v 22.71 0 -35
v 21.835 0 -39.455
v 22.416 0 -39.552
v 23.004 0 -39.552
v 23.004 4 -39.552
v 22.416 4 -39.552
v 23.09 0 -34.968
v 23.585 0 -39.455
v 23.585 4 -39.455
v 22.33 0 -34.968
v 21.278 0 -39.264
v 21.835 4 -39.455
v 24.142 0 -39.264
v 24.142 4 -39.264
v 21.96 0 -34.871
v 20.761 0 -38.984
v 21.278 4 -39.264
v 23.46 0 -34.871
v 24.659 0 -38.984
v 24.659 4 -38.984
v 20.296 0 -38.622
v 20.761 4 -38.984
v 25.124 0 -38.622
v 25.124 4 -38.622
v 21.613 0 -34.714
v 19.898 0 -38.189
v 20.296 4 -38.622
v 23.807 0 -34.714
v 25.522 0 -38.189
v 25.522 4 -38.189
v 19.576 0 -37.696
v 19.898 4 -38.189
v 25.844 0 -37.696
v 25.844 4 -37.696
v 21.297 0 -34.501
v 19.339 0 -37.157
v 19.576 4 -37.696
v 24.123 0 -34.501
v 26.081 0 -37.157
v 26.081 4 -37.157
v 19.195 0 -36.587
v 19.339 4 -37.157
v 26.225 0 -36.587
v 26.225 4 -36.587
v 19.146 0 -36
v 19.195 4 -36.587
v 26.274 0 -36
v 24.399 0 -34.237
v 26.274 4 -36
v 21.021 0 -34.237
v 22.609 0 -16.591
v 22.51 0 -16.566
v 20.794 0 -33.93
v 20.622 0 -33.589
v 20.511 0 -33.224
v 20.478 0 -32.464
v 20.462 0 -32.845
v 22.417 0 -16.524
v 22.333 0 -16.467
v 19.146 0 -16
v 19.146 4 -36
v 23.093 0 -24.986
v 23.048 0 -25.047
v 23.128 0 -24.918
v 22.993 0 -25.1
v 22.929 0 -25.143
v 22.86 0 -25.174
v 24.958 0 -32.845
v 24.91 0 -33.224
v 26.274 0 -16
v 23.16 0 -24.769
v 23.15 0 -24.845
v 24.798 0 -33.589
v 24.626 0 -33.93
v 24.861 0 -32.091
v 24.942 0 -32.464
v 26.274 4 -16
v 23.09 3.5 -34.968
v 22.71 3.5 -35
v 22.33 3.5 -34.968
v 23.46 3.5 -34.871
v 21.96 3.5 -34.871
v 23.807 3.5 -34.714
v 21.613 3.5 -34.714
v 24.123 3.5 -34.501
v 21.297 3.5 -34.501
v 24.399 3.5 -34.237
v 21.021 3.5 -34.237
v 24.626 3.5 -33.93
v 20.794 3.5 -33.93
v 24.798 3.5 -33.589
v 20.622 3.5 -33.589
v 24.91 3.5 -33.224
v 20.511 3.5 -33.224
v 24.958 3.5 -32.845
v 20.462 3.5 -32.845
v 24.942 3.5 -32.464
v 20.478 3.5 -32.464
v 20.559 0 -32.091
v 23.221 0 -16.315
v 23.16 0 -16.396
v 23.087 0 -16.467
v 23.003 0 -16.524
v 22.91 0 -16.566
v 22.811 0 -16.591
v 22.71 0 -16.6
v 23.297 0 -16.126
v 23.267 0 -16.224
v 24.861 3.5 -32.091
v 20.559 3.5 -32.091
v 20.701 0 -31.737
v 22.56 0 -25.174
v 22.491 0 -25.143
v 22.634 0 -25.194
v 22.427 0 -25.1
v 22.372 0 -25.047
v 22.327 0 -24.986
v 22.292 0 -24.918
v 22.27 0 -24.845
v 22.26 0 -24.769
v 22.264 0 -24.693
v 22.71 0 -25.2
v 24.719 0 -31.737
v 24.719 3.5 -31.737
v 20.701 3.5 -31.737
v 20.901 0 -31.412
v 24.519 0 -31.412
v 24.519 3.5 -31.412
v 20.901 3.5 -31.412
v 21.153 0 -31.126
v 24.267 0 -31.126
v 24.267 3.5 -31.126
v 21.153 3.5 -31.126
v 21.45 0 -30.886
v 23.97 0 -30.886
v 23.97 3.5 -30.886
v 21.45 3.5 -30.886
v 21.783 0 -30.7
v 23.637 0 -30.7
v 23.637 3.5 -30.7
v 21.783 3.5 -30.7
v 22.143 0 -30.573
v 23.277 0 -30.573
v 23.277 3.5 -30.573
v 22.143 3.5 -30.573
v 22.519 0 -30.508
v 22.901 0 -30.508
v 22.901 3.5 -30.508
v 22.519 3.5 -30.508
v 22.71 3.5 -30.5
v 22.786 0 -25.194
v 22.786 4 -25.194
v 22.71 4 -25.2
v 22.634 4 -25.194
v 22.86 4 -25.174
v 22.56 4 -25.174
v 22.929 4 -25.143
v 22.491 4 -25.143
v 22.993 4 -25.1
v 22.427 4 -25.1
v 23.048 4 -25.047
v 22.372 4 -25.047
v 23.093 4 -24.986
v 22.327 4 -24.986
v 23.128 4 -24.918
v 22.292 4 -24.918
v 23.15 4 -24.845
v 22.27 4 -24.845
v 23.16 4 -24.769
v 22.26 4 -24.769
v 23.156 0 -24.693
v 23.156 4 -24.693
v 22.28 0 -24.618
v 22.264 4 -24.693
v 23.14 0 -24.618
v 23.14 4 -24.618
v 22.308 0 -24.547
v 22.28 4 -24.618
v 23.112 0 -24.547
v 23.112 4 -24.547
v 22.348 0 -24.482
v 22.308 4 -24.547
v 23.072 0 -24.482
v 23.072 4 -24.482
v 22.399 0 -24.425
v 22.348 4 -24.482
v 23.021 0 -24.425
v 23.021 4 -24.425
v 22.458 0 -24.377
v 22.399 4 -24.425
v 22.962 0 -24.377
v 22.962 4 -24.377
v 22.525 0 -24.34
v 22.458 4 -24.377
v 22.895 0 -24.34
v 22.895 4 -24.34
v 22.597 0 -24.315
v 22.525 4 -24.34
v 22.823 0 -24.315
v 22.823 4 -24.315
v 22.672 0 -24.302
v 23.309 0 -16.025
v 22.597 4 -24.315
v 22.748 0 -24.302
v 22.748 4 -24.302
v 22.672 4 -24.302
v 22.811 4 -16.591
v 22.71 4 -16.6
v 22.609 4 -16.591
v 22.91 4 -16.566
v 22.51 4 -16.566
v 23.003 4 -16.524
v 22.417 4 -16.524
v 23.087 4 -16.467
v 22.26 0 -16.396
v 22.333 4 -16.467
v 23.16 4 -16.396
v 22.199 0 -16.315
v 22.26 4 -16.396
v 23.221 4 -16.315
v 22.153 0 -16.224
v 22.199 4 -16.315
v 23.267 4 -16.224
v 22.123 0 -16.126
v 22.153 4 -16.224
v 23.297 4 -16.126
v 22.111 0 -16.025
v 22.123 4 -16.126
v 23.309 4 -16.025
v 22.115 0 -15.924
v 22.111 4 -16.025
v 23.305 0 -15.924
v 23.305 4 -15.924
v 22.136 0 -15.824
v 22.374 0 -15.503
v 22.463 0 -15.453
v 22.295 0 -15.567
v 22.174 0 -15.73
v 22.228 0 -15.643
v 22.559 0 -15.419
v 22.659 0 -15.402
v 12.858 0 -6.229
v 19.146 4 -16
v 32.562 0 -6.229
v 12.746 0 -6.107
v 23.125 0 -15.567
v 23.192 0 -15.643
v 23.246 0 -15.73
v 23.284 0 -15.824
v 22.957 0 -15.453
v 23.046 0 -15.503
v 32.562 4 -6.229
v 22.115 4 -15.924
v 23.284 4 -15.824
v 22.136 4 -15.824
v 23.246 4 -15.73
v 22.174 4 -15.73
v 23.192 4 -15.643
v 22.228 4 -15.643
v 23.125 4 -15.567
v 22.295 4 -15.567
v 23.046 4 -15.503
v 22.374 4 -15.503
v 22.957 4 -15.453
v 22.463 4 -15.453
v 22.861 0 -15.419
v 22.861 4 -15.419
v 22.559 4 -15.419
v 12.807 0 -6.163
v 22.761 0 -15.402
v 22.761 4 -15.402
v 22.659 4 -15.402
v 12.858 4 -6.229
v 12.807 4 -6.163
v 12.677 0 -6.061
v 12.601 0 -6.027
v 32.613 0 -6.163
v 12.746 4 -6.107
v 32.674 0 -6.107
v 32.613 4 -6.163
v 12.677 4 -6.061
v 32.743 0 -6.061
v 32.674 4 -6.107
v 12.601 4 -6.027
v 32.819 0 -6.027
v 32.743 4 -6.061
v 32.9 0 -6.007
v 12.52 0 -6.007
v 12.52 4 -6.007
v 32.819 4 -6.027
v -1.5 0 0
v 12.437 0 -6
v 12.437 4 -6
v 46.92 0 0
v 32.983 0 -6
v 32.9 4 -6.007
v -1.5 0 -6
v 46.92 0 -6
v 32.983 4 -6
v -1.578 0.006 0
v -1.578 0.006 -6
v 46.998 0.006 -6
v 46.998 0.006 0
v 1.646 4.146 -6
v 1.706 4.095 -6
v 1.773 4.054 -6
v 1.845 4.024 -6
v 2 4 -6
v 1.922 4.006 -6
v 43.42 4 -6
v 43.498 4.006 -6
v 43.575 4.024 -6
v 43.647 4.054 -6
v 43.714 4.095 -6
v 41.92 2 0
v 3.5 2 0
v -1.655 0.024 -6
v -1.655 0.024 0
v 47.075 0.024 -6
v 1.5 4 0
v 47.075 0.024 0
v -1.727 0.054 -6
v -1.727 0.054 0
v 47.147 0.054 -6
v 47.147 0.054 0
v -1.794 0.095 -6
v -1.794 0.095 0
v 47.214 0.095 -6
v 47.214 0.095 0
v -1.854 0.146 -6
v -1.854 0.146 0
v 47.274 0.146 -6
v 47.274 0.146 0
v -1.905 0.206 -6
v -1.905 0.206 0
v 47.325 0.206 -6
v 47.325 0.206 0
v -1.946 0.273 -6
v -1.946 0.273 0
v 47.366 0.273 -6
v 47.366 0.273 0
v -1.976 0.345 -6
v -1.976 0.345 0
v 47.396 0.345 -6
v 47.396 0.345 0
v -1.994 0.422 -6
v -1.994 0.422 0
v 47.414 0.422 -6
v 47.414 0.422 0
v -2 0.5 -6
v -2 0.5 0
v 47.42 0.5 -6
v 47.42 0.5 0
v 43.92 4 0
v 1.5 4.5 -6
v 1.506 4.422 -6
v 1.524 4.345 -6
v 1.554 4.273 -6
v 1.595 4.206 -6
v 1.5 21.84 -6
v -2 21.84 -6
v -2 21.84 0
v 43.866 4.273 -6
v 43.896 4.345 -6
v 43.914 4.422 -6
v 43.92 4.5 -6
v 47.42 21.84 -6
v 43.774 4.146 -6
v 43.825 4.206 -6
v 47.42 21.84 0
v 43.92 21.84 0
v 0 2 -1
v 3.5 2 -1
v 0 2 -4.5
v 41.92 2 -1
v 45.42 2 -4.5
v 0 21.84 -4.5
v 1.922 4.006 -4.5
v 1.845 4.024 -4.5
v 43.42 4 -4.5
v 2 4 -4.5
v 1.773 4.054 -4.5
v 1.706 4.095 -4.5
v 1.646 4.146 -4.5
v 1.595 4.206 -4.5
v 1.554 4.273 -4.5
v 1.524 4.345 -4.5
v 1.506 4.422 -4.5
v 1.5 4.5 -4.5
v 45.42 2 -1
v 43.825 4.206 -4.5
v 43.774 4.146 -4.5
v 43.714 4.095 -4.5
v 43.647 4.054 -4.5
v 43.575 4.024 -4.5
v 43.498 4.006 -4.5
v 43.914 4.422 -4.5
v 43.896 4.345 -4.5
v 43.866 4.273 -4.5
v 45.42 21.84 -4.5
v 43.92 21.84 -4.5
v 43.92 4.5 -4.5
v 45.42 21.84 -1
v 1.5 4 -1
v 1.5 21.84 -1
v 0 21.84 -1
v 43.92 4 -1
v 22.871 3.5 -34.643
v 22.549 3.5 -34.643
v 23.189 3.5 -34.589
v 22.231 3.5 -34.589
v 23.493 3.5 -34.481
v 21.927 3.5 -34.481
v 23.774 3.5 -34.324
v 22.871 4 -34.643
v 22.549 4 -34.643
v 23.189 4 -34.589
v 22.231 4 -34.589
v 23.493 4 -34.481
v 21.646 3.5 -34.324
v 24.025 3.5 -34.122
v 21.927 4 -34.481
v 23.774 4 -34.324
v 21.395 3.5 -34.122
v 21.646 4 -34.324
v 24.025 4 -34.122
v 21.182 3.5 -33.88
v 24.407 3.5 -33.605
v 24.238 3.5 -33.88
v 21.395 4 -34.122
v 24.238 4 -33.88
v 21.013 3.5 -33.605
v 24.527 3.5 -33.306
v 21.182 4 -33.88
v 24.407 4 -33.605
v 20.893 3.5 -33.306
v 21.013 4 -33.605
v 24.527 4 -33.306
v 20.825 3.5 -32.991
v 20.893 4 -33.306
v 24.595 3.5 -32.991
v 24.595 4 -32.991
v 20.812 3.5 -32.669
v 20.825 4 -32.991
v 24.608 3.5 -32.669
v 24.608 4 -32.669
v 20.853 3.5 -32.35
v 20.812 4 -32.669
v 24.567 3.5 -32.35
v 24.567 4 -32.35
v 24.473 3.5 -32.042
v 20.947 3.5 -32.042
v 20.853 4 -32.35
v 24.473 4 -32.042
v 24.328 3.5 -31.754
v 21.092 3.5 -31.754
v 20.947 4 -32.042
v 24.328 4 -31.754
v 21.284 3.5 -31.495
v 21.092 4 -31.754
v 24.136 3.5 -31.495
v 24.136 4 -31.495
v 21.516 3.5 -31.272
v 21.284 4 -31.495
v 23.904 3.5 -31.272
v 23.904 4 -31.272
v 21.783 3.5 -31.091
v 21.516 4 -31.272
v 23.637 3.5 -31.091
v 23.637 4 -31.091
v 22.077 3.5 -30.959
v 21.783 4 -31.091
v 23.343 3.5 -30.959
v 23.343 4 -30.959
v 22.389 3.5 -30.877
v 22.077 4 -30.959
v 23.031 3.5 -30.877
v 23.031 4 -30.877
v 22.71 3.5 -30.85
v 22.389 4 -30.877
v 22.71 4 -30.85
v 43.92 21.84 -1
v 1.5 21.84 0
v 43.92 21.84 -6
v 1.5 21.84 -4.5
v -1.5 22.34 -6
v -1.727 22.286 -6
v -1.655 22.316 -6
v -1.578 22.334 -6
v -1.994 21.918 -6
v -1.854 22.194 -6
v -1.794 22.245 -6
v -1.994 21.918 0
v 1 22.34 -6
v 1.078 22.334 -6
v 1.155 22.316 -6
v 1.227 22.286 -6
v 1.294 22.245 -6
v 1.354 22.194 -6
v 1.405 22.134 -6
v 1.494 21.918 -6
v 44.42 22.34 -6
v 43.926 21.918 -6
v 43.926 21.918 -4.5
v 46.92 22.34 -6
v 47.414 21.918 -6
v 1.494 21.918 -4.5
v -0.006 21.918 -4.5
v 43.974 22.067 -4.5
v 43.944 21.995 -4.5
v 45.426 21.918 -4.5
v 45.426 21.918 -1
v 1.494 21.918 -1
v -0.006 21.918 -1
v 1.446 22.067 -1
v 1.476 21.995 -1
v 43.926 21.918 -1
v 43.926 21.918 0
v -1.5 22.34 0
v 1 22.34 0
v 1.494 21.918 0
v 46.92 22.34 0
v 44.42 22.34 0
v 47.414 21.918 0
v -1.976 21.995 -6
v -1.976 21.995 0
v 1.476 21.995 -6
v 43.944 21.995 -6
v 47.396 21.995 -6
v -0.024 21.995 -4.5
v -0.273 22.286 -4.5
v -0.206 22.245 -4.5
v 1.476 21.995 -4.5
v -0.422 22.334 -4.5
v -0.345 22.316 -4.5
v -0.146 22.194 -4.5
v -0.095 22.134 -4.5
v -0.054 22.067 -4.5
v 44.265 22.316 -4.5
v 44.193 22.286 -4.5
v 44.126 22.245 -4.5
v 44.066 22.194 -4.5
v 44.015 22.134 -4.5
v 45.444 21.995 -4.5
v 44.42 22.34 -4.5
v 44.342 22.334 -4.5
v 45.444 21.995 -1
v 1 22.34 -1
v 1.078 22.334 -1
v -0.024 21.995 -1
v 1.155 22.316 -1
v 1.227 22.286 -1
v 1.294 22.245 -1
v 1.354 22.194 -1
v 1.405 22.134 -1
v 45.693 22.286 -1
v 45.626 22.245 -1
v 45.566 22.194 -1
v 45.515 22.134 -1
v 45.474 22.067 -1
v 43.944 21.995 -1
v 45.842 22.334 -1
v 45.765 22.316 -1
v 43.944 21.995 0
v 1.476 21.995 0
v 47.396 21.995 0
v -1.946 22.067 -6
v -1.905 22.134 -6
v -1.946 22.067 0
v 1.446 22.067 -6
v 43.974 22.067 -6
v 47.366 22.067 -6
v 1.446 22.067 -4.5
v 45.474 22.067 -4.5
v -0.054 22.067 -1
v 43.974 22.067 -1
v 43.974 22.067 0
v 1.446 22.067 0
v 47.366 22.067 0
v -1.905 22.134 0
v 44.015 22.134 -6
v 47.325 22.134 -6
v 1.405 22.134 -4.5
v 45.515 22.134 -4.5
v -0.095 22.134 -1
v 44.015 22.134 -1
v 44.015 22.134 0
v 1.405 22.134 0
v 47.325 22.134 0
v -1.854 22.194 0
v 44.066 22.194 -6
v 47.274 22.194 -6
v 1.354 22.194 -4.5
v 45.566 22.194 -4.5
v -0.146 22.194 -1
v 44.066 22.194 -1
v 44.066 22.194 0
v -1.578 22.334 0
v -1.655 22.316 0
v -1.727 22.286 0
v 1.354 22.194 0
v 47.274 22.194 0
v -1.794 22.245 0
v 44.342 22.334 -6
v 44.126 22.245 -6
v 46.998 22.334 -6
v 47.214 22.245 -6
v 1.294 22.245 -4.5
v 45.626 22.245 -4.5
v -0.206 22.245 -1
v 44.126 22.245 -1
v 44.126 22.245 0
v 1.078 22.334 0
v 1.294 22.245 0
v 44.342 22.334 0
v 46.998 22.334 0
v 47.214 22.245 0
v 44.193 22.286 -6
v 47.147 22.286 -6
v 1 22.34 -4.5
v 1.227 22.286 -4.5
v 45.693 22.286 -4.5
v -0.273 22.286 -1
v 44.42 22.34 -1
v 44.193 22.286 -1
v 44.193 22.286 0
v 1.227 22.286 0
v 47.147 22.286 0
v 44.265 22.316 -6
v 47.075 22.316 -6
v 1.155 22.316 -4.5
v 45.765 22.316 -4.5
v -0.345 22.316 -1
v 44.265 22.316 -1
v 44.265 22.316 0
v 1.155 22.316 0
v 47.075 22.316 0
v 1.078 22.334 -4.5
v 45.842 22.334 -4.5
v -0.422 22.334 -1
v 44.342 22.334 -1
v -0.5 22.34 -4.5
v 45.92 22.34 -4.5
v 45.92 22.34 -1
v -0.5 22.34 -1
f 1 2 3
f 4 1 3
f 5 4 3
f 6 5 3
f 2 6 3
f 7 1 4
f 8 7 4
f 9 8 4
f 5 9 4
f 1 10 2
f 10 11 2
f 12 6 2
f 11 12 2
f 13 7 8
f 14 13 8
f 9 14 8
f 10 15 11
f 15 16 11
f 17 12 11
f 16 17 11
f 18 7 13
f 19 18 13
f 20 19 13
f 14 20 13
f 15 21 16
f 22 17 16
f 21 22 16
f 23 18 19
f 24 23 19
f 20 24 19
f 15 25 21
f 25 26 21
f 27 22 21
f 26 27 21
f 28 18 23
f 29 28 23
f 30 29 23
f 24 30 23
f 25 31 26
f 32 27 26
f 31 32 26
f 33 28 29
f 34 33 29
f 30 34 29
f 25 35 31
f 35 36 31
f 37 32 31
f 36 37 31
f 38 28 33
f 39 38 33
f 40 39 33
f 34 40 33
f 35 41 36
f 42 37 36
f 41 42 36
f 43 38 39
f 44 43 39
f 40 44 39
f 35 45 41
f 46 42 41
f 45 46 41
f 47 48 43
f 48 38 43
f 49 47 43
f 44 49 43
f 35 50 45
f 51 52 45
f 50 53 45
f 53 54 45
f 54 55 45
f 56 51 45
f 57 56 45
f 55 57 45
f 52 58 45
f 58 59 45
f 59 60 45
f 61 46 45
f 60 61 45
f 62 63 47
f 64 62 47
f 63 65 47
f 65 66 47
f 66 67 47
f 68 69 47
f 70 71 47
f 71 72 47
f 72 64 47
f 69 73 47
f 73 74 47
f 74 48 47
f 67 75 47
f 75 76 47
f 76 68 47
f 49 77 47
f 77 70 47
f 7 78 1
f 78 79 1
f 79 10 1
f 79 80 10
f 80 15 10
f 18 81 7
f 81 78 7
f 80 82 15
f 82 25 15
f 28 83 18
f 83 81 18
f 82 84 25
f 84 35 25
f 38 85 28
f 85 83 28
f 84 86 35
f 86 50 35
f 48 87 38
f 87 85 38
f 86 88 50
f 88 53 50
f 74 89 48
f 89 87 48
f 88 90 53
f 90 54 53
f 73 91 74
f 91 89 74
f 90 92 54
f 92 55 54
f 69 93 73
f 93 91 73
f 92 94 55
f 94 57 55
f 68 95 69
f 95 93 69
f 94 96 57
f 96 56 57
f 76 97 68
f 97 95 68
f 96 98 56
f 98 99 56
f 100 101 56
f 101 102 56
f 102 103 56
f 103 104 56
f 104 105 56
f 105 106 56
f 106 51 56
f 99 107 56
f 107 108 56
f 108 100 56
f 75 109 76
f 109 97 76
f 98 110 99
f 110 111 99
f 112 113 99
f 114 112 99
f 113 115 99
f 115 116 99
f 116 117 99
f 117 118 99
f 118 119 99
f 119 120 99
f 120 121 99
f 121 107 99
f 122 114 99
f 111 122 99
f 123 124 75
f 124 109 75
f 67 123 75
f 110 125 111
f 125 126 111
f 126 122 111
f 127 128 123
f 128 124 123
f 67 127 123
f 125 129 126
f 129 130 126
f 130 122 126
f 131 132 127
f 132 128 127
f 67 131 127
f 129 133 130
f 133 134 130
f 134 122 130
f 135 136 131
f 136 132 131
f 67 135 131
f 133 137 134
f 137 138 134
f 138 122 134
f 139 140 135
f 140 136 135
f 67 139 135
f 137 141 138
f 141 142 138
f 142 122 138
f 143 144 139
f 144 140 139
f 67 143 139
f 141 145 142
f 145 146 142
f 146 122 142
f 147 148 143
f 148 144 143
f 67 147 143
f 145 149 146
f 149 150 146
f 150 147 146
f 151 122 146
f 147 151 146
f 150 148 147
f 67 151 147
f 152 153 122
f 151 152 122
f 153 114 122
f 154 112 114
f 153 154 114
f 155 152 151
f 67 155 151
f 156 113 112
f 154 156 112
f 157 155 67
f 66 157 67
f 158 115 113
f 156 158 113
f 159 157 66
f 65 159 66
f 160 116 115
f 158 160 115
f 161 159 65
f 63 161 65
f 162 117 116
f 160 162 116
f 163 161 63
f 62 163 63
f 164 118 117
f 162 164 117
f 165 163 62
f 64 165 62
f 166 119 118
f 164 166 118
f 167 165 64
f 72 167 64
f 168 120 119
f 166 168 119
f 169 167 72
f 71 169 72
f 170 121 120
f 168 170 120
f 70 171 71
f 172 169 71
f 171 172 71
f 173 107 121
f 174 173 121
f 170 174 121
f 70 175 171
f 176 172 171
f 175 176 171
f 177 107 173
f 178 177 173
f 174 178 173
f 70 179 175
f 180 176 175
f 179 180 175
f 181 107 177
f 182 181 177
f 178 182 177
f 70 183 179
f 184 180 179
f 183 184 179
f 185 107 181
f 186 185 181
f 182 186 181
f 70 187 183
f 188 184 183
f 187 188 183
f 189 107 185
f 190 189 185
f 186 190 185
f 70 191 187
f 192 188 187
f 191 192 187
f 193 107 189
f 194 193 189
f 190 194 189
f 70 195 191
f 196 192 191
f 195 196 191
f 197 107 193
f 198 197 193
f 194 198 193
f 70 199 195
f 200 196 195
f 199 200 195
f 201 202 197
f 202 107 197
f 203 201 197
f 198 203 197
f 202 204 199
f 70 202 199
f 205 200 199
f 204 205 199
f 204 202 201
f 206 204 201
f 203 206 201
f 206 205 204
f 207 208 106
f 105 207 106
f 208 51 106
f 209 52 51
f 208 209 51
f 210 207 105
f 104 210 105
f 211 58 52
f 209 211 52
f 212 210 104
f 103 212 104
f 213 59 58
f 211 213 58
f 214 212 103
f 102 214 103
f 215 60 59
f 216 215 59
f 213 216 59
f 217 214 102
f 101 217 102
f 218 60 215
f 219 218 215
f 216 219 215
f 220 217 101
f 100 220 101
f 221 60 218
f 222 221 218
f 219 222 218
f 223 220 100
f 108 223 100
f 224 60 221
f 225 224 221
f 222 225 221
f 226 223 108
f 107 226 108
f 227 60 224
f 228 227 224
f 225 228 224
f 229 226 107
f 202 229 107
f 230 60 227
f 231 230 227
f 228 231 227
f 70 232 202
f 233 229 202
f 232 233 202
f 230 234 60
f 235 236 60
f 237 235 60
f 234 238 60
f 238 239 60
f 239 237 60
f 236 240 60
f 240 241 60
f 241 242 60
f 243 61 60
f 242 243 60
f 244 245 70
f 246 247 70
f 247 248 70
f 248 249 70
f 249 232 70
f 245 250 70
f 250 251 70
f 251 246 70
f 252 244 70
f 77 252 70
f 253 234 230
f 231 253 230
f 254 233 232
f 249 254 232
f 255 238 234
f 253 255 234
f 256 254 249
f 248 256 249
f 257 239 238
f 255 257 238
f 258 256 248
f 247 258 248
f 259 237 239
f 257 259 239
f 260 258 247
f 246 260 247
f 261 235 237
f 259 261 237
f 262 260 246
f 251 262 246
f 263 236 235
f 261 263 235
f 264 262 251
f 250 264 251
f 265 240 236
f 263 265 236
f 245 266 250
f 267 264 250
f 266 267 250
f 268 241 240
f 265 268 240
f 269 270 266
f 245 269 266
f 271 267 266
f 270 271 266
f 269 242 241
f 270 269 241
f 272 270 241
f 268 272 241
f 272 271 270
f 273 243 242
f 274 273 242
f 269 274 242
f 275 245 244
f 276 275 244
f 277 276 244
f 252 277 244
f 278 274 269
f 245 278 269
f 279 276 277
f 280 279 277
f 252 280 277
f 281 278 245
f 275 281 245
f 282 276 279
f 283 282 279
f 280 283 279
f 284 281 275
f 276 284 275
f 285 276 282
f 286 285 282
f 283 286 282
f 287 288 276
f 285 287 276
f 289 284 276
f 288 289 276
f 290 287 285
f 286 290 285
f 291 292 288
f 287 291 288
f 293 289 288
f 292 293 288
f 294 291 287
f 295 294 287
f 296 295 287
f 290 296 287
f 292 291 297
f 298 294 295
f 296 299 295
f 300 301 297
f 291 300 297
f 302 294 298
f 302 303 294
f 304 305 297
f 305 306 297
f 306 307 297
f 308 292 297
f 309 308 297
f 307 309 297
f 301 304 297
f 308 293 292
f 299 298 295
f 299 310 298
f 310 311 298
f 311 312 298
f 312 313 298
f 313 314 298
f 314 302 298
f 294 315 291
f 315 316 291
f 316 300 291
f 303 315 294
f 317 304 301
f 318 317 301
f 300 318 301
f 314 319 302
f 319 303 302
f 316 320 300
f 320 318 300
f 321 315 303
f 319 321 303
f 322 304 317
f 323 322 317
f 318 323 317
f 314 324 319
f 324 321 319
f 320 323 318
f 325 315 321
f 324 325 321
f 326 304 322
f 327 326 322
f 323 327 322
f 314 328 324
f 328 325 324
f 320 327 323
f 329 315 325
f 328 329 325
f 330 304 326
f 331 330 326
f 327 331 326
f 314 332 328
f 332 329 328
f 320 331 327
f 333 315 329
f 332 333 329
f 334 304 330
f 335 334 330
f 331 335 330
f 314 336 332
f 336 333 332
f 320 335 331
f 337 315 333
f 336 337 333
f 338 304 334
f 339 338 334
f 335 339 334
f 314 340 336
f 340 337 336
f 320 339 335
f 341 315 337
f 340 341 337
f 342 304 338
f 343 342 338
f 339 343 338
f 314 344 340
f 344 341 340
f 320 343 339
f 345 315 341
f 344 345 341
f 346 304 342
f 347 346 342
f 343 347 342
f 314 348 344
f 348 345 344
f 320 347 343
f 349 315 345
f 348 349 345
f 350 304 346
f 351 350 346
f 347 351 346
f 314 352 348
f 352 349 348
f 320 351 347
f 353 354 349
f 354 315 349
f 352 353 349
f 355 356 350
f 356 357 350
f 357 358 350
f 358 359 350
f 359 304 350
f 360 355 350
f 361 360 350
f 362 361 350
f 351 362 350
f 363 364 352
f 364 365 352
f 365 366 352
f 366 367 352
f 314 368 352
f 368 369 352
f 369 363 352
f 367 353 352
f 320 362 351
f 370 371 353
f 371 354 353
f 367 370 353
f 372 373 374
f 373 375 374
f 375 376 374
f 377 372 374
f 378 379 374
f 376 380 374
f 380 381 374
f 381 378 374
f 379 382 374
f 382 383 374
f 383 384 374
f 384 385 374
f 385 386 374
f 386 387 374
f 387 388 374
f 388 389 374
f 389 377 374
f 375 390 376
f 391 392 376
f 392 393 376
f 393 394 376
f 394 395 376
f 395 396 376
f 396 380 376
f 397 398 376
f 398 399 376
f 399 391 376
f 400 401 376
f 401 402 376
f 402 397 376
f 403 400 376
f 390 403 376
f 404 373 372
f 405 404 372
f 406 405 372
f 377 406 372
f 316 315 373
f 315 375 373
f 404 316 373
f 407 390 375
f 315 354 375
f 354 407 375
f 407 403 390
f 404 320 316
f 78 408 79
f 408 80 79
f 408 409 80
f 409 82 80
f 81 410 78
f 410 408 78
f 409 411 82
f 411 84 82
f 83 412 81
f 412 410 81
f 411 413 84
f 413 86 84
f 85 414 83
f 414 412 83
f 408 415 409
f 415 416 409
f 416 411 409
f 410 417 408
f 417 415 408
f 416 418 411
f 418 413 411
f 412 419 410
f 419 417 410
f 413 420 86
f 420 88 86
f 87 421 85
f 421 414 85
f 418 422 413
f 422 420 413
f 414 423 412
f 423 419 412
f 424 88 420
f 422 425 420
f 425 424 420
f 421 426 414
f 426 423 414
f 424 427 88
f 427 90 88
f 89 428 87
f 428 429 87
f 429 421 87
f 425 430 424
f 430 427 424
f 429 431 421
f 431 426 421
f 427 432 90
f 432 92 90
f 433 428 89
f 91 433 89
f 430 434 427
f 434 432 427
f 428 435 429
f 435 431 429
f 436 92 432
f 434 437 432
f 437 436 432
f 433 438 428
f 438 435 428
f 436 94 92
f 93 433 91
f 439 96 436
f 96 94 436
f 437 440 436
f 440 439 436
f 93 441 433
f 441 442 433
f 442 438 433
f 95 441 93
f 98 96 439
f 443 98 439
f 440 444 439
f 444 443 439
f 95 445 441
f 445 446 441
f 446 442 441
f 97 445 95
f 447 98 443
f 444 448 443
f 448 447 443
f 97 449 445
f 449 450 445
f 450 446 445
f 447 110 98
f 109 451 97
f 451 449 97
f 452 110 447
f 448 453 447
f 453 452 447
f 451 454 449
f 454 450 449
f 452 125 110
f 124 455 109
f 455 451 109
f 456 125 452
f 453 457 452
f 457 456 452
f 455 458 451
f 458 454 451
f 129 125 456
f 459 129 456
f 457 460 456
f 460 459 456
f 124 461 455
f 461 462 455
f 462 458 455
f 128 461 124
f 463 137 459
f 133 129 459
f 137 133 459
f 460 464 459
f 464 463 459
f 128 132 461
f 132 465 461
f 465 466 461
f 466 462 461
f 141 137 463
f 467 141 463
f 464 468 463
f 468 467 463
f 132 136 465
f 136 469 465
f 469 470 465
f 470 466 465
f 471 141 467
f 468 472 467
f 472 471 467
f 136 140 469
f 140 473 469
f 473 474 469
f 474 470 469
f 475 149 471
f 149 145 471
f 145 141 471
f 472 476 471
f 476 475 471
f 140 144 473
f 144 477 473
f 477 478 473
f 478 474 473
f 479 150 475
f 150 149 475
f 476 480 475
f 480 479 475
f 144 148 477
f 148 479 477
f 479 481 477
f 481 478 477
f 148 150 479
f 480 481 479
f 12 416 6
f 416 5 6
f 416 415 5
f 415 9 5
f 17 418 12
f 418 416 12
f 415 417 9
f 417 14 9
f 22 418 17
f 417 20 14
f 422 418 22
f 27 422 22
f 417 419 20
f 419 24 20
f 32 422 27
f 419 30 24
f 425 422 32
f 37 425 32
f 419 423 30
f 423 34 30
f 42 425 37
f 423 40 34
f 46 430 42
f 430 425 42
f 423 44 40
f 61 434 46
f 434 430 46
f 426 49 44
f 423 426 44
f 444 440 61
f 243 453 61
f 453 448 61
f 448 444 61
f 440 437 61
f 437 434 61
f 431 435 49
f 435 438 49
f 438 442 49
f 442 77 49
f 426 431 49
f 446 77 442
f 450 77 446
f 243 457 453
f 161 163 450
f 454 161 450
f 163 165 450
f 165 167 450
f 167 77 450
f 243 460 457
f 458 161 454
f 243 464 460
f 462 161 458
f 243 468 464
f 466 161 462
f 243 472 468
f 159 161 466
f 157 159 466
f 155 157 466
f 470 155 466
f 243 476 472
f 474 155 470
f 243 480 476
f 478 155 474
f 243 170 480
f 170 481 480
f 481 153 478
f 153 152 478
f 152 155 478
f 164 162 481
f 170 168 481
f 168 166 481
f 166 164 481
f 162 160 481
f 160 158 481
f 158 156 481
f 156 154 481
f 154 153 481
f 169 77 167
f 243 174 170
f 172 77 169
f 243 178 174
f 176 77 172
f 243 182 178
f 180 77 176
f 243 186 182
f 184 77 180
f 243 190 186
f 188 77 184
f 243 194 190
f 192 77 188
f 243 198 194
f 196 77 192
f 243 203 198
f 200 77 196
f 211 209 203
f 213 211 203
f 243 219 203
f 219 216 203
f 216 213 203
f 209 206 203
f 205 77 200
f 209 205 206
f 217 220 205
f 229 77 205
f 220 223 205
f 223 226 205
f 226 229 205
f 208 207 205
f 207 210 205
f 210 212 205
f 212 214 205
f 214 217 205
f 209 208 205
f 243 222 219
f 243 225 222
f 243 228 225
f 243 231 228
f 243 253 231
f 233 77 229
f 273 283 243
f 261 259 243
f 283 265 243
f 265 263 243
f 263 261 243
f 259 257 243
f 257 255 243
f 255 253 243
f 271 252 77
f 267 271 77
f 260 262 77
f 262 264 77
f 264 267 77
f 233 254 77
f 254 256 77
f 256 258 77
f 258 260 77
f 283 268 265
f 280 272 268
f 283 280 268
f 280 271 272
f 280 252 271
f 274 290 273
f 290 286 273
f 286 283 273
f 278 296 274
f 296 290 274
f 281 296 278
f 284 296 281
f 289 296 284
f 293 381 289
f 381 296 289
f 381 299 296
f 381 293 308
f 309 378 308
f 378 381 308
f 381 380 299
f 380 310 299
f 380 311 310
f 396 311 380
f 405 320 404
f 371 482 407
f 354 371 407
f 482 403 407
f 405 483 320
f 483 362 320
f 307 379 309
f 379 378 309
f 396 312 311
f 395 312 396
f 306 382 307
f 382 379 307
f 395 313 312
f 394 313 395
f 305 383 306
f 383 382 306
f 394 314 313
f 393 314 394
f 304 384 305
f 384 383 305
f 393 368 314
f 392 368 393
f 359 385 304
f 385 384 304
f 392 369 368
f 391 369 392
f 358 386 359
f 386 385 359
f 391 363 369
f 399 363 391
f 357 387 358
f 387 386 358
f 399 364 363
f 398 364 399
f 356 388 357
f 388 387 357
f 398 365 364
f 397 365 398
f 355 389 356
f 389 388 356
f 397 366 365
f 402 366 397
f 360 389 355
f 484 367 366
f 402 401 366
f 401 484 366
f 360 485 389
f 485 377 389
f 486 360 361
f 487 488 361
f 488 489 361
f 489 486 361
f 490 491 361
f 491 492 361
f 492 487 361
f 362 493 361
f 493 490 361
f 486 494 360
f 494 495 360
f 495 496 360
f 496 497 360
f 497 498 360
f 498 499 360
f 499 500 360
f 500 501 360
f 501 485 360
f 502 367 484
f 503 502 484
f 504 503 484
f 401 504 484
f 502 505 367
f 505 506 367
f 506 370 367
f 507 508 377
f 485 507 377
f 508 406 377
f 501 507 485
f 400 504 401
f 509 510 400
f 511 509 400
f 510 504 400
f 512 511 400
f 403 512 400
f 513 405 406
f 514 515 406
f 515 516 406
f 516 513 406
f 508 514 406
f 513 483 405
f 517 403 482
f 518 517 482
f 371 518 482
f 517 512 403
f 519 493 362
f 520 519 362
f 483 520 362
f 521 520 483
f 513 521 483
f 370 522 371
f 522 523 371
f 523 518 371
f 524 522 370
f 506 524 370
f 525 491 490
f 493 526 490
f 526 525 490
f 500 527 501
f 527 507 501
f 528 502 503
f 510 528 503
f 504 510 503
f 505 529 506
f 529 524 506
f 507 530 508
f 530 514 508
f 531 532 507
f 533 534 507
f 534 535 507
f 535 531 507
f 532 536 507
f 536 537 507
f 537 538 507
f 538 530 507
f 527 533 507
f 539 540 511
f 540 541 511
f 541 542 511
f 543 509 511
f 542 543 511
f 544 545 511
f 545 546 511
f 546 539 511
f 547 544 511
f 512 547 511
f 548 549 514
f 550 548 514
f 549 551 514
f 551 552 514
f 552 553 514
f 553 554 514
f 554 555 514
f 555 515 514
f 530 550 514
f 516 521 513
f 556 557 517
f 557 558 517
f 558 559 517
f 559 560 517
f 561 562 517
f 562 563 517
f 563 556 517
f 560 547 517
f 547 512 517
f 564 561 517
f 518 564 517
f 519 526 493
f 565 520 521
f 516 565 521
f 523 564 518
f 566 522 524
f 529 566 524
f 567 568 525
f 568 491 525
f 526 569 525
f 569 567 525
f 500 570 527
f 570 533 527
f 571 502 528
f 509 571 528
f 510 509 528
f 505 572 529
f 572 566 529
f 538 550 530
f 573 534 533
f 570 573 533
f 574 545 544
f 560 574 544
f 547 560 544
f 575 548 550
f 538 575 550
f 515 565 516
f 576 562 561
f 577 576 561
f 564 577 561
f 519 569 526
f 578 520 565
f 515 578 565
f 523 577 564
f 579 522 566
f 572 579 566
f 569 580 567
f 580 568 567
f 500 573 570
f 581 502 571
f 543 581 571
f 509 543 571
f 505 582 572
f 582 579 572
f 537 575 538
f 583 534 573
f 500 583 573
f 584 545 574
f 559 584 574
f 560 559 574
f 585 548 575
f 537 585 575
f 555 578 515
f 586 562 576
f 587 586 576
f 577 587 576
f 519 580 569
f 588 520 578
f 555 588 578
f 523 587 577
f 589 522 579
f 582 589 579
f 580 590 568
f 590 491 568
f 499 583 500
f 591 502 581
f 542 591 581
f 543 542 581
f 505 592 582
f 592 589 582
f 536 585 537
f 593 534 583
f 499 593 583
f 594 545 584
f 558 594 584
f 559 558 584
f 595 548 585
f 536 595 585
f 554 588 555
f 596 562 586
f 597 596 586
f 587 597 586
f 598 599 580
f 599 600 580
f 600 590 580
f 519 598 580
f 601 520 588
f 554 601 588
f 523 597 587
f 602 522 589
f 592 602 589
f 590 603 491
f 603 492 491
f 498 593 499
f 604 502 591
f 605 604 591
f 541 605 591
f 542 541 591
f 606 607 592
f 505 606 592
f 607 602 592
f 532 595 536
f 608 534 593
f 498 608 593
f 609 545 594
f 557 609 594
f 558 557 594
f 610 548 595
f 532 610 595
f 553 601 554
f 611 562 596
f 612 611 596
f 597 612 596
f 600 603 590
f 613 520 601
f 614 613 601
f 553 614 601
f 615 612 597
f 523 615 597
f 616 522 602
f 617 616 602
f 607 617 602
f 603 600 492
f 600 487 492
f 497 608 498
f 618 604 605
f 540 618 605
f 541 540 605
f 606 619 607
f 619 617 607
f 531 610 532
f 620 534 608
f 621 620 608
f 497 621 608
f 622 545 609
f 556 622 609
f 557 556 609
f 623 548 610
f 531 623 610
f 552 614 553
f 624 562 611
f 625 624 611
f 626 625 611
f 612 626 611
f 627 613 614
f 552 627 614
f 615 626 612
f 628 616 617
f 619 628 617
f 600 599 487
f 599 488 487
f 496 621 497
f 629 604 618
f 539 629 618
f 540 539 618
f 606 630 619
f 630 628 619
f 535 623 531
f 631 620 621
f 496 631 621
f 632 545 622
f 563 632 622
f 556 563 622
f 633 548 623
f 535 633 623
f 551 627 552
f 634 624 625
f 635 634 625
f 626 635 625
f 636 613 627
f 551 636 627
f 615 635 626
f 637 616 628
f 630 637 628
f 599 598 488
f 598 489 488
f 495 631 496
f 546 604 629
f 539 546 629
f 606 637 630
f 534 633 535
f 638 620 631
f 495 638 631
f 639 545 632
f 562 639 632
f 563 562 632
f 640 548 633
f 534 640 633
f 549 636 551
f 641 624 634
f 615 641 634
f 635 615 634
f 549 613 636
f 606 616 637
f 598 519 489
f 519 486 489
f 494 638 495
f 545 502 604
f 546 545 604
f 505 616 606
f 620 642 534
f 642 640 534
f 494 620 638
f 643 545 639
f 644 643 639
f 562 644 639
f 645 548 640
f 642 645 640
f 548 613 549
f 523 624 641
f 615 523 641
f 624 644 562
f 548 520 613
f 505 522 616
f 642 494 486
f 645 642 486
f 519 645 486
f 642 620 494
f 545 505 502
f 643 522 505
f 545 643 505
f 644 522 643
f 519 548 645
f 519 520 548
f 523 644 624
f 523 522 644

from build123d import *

# Parameters (mm, degrees)
BOSS_EXTRUDE1_DEPTH = 22.34
SKETCH3_W           = 42.42
SKETCH3_H           = 6
CUT_EXTRUDE1_DEPTH  = 20.34
SKETCH4_W           = 45.42
SKETCH4_H           = 3.5
CUT_EXTRUDE2_DEPTH  = 20.34
SKETCH6_R           = 0.6
SKETCH6_R_2         = 0.45
SKETCH6_R_3         = 2.25
BOSS_EXTRUDE2_DEPTH = 4
BOSS_EXTRUDE3_START = 2
SKETCH7_R           = 2.25
SKETCH7_R_2         = 1.9
BOSS_EXTRUDE3_DEPTH = 0.5
SKETCH8_W           = 42.42
SKETCH8_H           = 1.5
BOSS_EXTRUDE4_DEPTH = 2
BOSS_EXTRUDE5_DEPTH = 1
FILLET1_R           = 0.5


with BuildPart() as part:
    # Sketch1 → Boss-Extrude1 (new body)
    with BuildSketch(Plane(origin=(0, 0, 0), x_dir=(1, 0, 0), z_dir=(0, 1, 0))):
        Polygon((47.42, 0), (47.42, 6), (45.42, 6), (0, 6), (-2, 6), (-2, 0), (0, 0), (45.42, 0), align=None)
    extrude(amount=BOSS_EXTRUDE1_DEPTH)

    # Sketch3 → Cut-Extrude1 (cut)
    with BuildSketch(Plane(origin=(0, 22.34, 0), x_dir=(1, 0, 0), z_dir=(0, 1, 0))):
        with Locations((22.71, 3)):
            Rectangle(SKETCH3_W, SKETCH3_H)
    extrude(amount=-CUT_EXTRUDE1_DEPTH, mode=Mode.SUBTRACT)

    # Sketch4 → Cut-Extrude2 (cut)
    with BuildSketch(Plane(origin=(0, 22.34, 0), x_dir=(1, 0, 0), z_dir=(0, 1, 0))):
        with Locations((22.71, 2.75)):
            Rectangle(SKETCH4_W, SKETCH4_H)
    extrude(amount=-CUT_EXTRUDE2_DEPTH, mode=Mode.SUBTRACT)

    # Sketch6 → Boss-Extrude2 (add)
    with BuildSketch(Plane.XZ):
        with BuildLine():
            Line((12.71, -6), (19.146099522, -16))
            Line((19.146099522, -16), (19.146099522, -36))
            ThreePointArc((19.146099522, -36), (22.71, -39.563900478), (26.273900478, -36))
            Line((26.273900478, -36), (26.273900478, -16))
            Line((26.273900478, -16), (32.71, -6))
            Line((32.71, -6), (12.71, -6))
        make_face()
        with Locations((22.71, -16)):
            Circle(SKETCH6_R, mode=Mode.SUBTRACT)
        with Locations((22.71, -24.75)):
            Circle(SKETCH6_R_2, mode=Mode.SUBTRACT)
        with Locations((22.71, -32.75)):
            Circle(SKETCH6_R_3, mode=Mode.SUBTRACT)
    extrude(amount=-BOSS_EXTRUDE2_DEPTH)

    # Sketch7 → Boss-Extrude3 (add)
    with BuildSketch(Plane(origin=(0, 2, 0), x_dir=(1, 0, 0), z_dir=(0, 1, 0)).offset(BOSS_EXTRUDE3_START)):
        with Locations((22.71, 32.75)):
            Circle(SKETCH7_R)
        with Locations((22.71, 32.75)):
            Circle(SKETCH7_R_2, mode=Mode.SUBTRACT)
    extrude(amount=-BOSS_EXTRUDE3_DEPTH)

    # Sketch8 → Boss-Extrude4 (add)
    with BuildSketch(Plane(origin=(0, 2, 0), x_dir=(1, 0, 0), z_dir=(0, 1, 0))):
        with Locations((22.71, 5.25)):
            Rectangle(SKETCH8_W, SKETCH8_H)
    extrude(amount=BOSS_EXTRUDE4_DEPTH)

    # Sketch11 → Boss-Extrude5 (add)
    with BuildSketch(Plane.XY):
        Polygon((1.5, 4), (3.5, 2), (1.5, 2), align=None)
        Polygon((43.92, 4), (41.92, 2), (43.92, 2), align=None)
    extrude(amount=-BOSS_EXTRUDE5_DEPTH)

    # Fillet1
    fillet1_edges = [part.edges().sort_by_distance(p)[0] for p in [
        (1.5, 4, -5.25),
        (43.92, 4, -5.25),
        (47.42, 22.34, -3),
        (-2, 22.34, -3),
        (1.5, 22.34, -5.25),
        (43.92, 22.34, -0.5),
        (1.5, 22.34, -0.5),
        (43.92, 22.34, -5.25),
        (45.42, 22.34, -2.75),
        (0, 22.34, -2.75),
        (12.71, 2, -6),
        (32.71, 2, -6),
        (-2, 0, -3),
        (47.42, 0, -3),
    ]]
    fillet(fillet1_edges, radius=FILLET1_R)


solid = part.part
